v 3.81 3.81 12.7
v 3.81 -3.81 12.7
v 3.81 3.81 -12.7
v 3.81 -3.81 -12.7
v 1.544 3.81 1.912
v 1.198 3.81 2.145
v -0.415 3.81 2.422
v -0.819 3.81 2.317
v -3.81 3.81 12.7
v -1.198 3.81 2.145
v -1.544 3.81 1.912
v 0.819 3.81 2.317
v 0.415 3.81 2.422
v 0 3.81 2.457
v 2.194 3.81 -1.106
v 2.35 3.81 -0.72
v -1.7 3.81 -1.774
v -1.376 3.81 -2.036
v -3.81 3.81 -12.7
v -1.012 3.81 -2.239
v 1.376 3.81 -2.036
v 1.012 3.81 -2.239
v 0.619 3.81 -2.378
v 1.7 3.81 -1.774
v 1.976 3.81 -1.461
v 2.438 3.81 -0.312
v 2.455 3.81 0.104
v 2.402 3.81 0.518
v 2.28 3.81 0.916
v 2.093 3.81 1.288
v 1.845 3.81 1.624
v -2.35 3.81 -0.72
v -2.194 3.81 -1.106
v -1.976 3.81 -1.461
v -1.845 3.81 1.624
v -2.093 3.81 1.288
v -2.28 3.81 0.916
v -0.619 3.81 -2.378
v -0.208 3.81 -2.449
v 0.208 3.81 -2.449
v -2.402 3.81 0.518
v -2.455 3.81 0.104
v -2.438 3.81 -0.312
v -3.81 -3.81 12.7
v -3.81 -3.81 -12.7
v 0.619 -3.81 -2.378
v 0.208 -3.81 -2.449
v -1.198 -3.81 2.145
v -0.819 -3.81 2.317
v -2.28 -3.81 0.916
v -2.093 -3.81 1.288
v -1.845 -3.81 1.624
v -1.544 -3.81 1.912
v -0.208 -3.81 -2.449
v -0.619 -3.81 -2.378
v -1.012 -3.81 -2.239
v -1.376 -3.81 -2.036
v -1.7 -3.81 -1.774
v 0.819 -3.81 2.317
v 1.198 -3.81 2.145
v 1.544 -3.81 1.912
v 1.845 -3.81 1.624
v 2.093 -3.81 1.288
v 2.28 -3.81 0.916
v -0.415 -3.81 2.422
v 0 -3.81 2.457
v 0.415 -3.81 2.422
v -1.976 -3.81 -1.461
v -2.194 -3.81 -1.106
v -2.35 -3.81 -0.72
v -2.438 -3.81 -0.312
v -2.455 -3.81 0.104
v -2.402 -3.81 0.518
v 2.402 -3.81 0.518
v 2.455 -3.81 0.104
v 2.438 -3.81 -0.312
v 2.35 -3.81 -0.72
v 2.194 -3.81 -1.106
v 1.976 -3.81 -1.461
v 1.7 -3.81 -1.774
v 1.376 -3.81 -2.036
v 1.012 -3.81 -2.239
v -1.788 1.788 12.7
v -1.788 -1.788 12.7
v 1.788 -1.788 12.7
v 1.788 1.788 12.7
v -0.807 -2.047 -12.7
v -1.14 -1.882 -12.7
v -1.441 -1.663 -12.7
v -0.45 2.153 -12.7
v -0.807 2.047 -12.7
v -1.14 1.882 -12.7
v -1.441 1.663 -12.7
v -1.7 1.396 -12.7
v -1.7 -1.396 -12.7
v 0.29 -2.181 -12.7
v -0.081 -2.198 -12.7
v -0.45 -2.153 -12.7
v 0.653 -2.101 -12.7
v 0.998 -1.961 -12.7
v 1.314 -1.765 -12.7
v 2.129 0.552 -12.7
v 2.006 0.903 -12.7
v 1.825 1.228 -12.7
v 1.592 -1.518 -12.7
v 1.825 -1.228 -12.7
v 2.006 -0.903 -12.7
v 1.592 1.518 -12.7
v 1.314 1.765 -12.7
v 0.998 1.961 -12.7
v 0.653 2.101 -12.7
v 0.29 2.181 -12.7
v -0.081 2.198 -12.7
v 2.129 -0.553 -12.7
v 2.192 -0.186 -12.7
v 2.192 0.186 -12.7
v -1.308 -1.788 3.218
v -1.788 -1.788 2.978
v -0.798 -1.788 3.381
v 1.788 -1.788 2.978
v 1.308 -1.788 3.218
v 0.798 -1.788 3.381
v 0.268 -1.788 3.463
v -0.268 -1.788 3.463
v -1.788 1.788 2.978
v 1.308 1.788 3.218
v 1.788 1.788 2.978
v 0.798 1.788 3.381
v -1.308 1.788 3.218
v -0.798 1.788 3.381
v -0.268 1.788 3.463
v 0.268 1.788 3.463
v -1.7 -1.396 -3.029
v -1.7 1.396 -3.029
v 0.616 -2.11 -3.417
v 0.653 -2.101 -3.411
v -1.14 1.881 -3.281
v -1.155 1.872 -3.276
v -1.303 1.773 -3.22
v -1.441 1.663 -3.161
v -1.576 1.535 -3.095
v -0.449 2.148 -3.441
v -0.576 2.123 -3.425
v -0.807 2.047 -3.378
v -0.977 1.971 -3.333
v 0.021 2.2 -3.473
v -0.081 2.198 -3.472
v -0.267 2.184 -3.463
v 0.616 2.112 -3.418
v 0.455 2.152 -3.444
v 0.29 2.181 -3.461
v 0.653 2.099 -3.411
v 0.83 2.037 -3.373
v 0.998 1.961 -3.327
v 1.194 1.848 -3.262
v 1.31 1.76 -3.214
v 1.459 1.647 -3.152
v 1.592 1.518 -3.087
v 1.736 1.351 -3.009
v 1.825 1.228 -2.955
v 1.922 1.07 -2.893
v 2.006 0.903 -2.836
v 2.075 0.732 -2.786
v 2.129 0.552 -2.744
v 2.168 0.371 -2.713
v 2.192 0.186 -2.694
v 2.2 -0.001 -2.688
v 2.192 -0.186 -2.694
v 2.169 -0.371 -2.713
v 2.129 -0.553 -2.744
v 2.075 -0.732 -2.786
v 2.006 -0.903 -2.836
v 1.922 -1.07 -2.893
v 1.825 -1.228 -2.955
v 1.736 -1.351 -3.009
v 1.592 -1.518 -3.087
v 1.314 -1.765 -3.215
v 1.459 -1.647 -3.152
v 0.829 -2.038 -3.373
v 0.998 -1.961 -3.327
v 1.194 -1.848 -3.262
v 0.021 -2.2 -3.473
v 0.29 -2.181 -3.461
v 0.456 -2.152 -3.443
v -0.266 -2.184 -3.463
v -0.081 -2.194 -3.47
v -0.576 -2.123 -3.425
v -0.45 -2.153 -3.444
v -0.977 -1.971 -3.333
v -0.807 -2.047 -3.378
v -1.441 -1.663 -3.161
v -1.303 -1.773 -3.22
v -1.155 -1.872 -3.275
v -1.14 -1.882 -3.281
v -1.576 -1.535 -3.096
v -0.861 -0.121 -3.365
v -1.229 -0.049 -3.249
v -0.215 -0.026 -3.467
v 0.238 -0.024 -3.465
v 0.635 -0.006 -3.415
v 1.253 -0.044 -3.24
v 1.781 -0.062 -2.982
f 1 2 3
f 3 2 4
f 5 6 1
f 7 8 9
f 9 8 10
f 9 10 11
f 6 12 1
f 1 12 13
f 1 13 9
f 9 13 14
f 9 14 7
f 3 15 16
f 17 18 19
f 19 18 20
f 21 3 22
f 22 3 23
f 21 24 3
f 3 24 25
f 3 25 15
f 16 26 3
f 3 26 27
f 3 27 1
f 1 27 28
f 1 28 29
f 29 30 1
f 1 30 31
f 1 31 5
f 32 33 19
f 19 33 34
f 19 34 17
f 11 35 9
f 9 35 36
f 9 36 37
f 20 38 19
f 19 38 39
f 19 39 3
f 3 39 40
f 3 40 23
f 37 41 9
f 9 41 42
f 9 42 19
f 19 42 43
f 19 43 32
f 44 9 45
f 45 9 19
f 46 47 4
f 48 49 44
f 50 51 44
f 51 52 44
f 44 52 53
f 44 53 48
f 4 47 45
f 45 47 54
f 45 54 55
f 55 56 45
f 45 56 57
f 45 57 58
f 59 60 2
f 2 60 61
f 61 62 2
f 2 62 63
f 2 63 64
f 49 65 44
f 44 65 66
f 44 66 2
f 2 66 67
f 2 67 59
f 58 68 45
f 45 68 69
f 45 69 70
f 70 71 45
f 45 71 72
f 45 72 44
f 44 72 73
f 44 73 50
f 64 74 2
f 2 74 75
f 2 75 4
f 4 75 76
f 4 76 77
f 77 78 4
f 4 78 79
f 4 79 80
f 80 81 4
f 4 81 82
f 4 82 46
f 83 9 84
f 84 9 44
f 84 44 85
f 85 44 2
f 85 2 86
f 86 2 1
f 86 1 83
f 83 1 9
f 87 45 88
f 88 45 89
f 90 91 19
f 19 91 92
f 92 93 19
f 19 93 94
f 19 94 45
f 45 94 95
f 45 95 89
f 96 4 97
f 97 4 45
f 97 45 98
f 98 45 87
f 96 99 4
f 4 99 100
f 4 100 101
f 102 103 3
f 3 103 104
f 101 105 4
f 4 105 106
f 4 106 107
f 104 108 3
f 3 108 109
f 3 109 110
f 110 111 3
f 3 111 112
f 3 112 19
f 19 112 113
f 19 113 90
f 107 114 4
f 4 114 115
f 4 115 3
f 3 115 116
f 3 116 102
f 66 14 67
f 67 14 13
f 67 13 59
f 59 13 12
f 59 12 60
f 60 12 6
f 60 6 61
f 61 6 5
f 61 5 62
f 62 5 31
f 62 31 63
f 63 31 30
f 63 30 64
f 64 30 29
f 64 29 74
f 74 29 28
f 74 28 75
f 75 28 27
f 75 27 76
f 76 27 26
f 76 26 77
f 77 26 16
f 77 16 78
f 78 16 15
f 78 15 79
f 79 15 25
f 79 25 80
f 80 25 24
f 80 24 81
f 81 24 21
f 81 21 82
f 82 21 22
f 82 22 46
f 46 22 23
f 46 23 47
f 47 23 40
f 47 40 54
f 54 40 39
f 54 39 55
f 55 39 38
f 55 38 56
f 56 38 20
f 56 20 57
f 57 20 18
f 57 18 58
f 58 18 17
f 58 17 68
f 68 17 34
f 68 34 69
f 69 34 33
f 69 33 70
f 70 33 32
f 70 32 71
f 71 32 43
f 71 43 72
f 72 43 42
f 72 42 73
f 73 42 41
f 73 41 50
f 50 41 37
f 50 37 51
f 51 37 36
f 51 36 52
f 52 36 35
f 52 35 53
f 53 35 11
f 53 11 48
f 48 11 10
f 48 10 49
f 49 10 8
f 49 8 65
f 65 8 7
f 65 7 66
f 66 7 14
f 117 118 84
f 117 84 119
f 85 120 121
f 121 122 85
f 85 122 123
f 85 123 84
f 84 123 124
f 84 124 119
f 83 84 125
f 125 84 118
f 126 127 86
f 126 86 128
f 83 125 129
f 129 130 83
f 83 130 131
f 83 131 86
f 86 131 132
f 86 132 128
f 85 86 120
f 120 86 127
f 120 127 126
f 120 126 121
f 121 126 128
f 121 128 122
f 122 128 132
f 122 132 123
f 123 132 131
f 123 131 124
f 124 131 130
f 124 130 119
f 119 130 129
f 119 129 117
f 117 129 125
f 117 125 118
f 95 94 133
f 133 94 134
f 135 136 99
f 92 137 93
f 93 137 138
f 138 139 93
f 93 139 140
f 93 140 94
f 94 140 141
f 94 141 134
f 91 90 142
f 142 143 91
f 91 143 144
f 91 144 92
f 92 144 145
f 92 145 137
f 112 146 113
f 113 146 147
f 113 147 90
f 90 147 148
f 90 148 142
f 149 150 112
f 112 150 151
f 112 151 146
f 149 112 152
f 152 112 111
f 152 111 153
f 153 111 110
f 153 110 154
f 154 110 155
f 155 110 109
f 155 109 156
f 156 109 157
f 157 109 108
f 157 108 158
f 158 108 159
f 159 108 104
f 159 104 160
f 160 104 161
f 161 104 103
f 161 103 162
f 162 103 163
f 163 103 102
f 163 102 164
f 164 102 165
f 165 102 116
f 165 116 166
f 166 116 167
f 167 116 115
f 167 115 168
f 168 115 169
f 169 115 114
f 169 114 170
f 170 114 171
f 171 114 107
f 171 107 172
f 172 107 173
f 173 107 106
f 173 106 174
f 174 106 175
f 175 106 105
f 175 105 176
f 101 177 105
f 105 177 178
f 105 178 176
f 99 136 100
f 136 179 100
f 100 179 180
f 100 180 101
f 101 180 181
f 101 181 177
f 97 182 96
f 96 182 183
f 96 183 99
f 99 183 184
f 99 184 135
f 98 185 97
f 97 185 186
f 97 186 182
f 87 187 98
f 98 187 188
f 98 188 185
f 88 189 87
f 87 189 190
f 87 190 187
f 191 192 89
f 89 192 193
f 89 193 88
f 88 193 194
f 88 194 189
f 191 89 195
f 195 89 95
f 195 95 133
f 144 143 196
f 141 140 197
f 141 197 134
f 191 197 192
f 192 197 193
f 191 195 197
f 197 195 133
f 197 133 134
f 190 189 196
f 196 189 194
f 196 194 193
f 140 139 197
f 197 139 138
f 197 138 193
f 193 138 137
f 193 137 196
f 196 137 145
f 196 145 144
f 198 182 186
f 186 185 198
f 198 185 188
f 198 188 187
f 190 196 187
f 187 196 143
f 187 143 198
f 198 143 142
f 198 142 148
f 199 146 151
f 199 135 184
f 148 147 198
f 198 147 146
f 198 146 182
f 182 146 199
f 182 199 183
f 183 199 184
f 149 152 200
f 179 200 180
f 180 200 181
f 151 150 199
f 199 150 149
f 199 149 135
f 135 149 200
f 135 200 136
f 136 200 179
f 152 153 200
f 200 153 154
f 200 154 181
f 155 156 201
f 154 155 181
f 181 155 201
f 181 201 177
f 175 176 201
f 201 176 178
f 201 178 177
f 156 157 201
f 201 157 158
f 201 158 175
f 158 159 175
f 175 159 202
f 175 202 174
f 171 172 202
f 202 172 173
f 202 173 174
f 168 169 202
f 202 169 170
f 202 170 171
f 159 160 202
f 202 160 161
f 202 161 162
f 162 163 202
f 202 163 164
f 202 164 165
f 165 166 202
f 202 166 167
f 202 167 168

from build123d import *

# Parameters (mm, degrees)
SKETCH2_W               = 7.62
SKETCH2_H               = 7.62
BOSS_EXTRUDE1_DEPTH     = 12.7
F_8_CLEARANCE_HOLE1_D   = 4.9149
CUT_EXTRUDE1_REACH      = 27.965
CUT_EXTRUDE1_END_RADIUS = 3.47345
SKETCH5_W               = 3.175
SKETCH5_H               = 3.175
CUT_EXTRUDE2_REACH      = 27.965
CUT_EXTRUDE2_END_RADIUS = 3.47345
CUT_EXTRUDE3_REACH      = 27.965
CUT_EXTRUDE3_END_RADIUS = 3.47345
SKETCH7_W               = 3.575
SKETCH7_H               = 3.575
SKETCH7_W_2             = 3.175
SKETCH7_H_2             = 3.175
CUT_EXTRUDE4_REACH      = 27.965
CUT_EXTRUDE4_END_RADIUS = 3.47345


with BuildPart() as part:
    # Sketch2 → Boss-Extrude1 (new, symmetric)
    with BuildSketch(Plane.XY):
        Rectangle(SKETCH2_W, SKETCH2_H)
    extrude(amount=BOSS_EXTRUDE1_DEPTH, both=True)

    # #8 Clearance Hole1 (through all)
    with Locations(Plane(origin=(0, 3.81, 0), x_dir=(1, 0, 0), z_dir=(0, 1, 0))):
        with Locations((0, 0)):
            Hole(F_8_CLEARANCE_HOLE1_D / 2)

    # Cut-Extrude1: up to this cylinder (the profile starts outside it)
    cut_extrude1_end = Plane(origin=(0, 0, 0), z_dir=(0, 1, 0)) * Cylinder(CUT_EXTRUDE1_END_RADIUS, 63.8769, mode=Mode.PRIVATE)
    # Sketch5 → Cut-Extrude1 (cut, up to the surface)
    with BuildSketch(Plane.XY.offset(12.7), mode=Mode.PRIVATE) as cut_extrude1_sk1:
        Rectangle(SKETCH5_W, SKETCH5_H)
    cut_extrude1_tool1 = extrude(cut_extrude1_sk1.sketch, amount=-CUT_EXTRUDE1_REACH, mode=Mode.PRIVATE) - cut_extrude1_end
    add(cut_extrude1_tool1.solids().sort_by_distance((0, 0, 12.7))[0], mode=Mode.SUBTRACT)

    # Cut-Extrude2: up to this cylinder (the profile starts outside it)
    cut_extrude2_end = Plane(origin=(0, 0, 0), z_dir=(0, 1, 0)) * Cylinder(CUT_EXTRUDE2_END_RADIUS, 63.8769, mode=Mode.PRIVATE)
    # Sketch6 → Cut-Extrude2 (cut, up to the surface)
    with BuildSketch(Plane(origin=(0, 0, -12.7), x_dir=(-1, 0, 0), z_dir=(0, 0, -1)), mode=Mode.PRIVATE) as cut_extrude2_sk1:
        with BuildLine():
            Line((1.499999936, 1.322875825), (1.499999936, -1.322875825))
            ThreePointArc((1.499999936, -1.322875825), (-2.000000064, 0), (1.499999936, 1.322875825))
        make_face()
    cut_extrude2_tool1 = extrude(cut_extrude2_sk1.sketch, amount=-CUT_EXTRUDE2_REACH, mode=Mode.PRIVATE) - cut_extrude2_end
    add(cut_extrude2_tool1.solids().sort_by_distance((0.132366, 0, -12.7))[0], mode=Mode.SUBTRACT)

    # Cut-Extrude3: up to this cylinder (the profile starts outside it)
    cut_extrude3_end = Plane(origin=(0, 0, 0), z_dir=(0, 1, 0)) * Cylinder(CUT_EXTRUDE3_END_RADIUS, 63.8769, mode=Mode.PRIVATE)
    # Sketch7 → Cut-Extrude3 (cut, up to the surface)
    with BuildSketch(Plane.XY.offset(12.7), mode=Mode.PRIVATE) as cut_extrude3_sk1:
        Rectangle(SKETCH7_W, SKETCH7_H)
        Rectangle(SKETCH7_W_2, SKETCH7_H_2, mode=Mode.SUBTRACT)
    cut_extrude3_tool1 = extrude(cut_extrude3_sk1.sketch, amount=-CUT_EXTRUDE3_REACH, mode=Mode.PRIVATE) - cut_extrude3_end
    add(cut_extrude3_tool1.solids().sort_by_distance((-1.736942, 0, 12.7))[0], mode=Mode.SUBTRACT)

    # Cut-Extrude4: up to this cylinder (the profile starts outside it)
    cut_extrude4_end = Plane(origin=(0, 0, 0), z_dir=(0, 1, 0)) * Cylinder(CUT_EXTRUDE4_END_RADIUS, 63.8769, mode=Mode.PRIVATE)
    # Sketch8 → Cut-Extrude4 (cut, up to the surface)
    with BuildSketch(Plane(origin=(0, 0, -12.7), x_dir=(-1, 0, 0), z_dir=(0, 0, -1)), mode=Mode.PRIVATE) as cut_extrude4_sk1:
        with BuildLine():
            Line((1.699999936, -1.396424183), (1.699999936, 1.396424183))
            ThreePointArc((1.699999936, 1.396424183), (-2.200000064, 0), (1.699999936, -1.396424183))
        make_face()
    cut_extrude4_tool1 = extrude(cut_extrude4_sk1.sketch, amount=-CUT_EXTRUDE4_REACH, mode=Mode.PRIVATE) - cut_extrude4_end
    add(cut_extrude4_tool1.solids().sort_by_distance((0.127385, 0, -12.7))[0], mode=Mode.SUBTRACT)


solid = part.part
